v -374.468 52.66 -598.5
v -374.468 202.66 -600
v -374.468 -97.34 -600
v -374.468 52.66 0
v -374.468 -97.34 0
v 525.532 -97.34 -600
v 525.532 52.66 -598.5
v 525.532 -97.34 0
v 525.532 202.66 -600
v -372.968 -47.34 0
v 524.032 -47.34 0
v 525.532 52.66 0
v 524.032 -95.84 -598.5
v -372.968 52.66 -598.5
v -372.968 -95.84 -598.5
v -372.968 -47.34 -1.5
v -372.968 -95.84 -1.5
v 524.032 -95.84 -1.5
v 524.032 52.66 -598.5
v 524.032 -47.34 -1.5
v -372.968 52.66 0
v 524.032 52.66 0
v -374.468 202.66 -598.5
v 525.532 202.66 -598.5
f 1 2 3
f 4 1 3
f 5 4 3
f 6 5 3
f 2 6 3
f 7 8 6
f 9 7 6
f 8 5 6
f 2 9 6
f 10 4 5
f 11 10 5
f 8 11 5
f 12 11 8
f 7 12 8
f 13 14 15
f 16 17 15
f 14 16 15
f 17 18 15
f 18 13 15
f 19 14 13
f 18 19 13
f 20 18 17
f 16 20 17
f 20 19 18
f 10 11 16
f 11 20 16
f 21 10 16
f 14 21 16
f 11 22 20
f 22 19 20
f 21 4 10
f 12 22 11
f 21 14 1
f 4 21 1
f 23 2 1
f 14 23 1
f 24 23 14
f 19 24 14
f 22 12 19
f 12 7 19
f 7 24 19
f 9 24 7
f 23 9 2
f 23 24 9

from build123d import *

# Parameters (mm, degrees)
SKETCH2_W               = 900
SKETCH2_H               = 300
BOSS_EXTRUDE1_DEPTH     = 600
CUT_EXTRUDE1_DEPTH      = 1
CUT_EXTRUDE1_DEPTH_BACK = 900
CUT_EXTRUDE2_DEPTH      = 1
CUT_EXTRUDE2_DEPTH_BACK = 598.5
SKETCH6_W               = 897
SKETCH6_H               = 597
CUT_EXTRUDE4_DEPTH      = 48.5


with BuildPart() as part:
    # Sketch2 → Boss-Extrude1 (new body)
    with BuildSketch(Plane.XY):
        with Locations((75.531914894, 52.659574468)):
            Rectangle(SKETCH2_W, SKETCH2_H)
    extrude(amount=-BOSS_EXTRUDE1_DEPTH)

    # Sketch3 → Cut-Extrude1 (cut, two sides)
    with BuildSketch(Plane.ZY.offset(374.468085106)) as cut_extrude1_sk:
        Polygon((-1951.6407865, 202.659574468), (-600, 202.659574468), (-598.5, 202.659574468), (-598.5, 52.659574468), (0, 52.659574468), (1351.6407865, 52.659574468), (1474.268787585, 2753.15834993), (-1829.012785414, 2903.15834993), align=None)
    extrude(amount=CUT_EXTRUDE1_DEPTH, mode=Mode.SUBTRACT)
    extrude(cut_extrude1_sk.sketch, amount=-CUT_EXTRUDE1_DEPTH_BACK, mode=Mode.SUBTRACT)

    # Sketch4 → Cut-Extrude2 (cut, two sides)
    with BuildSketch(Plane.XY) as cut_extrude2_sk:
        Polygon((-2209.296844196, 52.659574468), (-374.468085106, 52.659574468), (-372.968085106, 52.659574468), (-372.968085106, -47.340425532), (524.031914894, -47.340425532), (524.031914894, 52.659574468), (525.531914894, 52.659574468), (2360.360673983, 52.659574468), (2360.360673983, 3722.317092647), (-2209.296844196, 3722.317092647), align=None)
    extrude(amount=CUT_EXTRUDE2_DEPTH, mode=Mode.SUBTRACT)
    extrude(cut_extrude2_sk.sketch, amount=-CUT_EXTRUDE2_DEPTH_BACK, mode=Mode.SUBTRACT)

    # Sketch6 → Cut-Extrude4 (cut)
    with BuildSketch(Plane(origin=(0, -47.340425532, 0), x_dir=(1, 0, 0), z_dir=(0, 1, 0))):
        with Locations((75.531914894, 300)):
            Rectangle(SKETCH6_W, SKETCH6_H)
    extrude(amount=-CUT_EXTRUDE4_DEPTH, mode=Mode.SUBTRACT)


solid = part.part
